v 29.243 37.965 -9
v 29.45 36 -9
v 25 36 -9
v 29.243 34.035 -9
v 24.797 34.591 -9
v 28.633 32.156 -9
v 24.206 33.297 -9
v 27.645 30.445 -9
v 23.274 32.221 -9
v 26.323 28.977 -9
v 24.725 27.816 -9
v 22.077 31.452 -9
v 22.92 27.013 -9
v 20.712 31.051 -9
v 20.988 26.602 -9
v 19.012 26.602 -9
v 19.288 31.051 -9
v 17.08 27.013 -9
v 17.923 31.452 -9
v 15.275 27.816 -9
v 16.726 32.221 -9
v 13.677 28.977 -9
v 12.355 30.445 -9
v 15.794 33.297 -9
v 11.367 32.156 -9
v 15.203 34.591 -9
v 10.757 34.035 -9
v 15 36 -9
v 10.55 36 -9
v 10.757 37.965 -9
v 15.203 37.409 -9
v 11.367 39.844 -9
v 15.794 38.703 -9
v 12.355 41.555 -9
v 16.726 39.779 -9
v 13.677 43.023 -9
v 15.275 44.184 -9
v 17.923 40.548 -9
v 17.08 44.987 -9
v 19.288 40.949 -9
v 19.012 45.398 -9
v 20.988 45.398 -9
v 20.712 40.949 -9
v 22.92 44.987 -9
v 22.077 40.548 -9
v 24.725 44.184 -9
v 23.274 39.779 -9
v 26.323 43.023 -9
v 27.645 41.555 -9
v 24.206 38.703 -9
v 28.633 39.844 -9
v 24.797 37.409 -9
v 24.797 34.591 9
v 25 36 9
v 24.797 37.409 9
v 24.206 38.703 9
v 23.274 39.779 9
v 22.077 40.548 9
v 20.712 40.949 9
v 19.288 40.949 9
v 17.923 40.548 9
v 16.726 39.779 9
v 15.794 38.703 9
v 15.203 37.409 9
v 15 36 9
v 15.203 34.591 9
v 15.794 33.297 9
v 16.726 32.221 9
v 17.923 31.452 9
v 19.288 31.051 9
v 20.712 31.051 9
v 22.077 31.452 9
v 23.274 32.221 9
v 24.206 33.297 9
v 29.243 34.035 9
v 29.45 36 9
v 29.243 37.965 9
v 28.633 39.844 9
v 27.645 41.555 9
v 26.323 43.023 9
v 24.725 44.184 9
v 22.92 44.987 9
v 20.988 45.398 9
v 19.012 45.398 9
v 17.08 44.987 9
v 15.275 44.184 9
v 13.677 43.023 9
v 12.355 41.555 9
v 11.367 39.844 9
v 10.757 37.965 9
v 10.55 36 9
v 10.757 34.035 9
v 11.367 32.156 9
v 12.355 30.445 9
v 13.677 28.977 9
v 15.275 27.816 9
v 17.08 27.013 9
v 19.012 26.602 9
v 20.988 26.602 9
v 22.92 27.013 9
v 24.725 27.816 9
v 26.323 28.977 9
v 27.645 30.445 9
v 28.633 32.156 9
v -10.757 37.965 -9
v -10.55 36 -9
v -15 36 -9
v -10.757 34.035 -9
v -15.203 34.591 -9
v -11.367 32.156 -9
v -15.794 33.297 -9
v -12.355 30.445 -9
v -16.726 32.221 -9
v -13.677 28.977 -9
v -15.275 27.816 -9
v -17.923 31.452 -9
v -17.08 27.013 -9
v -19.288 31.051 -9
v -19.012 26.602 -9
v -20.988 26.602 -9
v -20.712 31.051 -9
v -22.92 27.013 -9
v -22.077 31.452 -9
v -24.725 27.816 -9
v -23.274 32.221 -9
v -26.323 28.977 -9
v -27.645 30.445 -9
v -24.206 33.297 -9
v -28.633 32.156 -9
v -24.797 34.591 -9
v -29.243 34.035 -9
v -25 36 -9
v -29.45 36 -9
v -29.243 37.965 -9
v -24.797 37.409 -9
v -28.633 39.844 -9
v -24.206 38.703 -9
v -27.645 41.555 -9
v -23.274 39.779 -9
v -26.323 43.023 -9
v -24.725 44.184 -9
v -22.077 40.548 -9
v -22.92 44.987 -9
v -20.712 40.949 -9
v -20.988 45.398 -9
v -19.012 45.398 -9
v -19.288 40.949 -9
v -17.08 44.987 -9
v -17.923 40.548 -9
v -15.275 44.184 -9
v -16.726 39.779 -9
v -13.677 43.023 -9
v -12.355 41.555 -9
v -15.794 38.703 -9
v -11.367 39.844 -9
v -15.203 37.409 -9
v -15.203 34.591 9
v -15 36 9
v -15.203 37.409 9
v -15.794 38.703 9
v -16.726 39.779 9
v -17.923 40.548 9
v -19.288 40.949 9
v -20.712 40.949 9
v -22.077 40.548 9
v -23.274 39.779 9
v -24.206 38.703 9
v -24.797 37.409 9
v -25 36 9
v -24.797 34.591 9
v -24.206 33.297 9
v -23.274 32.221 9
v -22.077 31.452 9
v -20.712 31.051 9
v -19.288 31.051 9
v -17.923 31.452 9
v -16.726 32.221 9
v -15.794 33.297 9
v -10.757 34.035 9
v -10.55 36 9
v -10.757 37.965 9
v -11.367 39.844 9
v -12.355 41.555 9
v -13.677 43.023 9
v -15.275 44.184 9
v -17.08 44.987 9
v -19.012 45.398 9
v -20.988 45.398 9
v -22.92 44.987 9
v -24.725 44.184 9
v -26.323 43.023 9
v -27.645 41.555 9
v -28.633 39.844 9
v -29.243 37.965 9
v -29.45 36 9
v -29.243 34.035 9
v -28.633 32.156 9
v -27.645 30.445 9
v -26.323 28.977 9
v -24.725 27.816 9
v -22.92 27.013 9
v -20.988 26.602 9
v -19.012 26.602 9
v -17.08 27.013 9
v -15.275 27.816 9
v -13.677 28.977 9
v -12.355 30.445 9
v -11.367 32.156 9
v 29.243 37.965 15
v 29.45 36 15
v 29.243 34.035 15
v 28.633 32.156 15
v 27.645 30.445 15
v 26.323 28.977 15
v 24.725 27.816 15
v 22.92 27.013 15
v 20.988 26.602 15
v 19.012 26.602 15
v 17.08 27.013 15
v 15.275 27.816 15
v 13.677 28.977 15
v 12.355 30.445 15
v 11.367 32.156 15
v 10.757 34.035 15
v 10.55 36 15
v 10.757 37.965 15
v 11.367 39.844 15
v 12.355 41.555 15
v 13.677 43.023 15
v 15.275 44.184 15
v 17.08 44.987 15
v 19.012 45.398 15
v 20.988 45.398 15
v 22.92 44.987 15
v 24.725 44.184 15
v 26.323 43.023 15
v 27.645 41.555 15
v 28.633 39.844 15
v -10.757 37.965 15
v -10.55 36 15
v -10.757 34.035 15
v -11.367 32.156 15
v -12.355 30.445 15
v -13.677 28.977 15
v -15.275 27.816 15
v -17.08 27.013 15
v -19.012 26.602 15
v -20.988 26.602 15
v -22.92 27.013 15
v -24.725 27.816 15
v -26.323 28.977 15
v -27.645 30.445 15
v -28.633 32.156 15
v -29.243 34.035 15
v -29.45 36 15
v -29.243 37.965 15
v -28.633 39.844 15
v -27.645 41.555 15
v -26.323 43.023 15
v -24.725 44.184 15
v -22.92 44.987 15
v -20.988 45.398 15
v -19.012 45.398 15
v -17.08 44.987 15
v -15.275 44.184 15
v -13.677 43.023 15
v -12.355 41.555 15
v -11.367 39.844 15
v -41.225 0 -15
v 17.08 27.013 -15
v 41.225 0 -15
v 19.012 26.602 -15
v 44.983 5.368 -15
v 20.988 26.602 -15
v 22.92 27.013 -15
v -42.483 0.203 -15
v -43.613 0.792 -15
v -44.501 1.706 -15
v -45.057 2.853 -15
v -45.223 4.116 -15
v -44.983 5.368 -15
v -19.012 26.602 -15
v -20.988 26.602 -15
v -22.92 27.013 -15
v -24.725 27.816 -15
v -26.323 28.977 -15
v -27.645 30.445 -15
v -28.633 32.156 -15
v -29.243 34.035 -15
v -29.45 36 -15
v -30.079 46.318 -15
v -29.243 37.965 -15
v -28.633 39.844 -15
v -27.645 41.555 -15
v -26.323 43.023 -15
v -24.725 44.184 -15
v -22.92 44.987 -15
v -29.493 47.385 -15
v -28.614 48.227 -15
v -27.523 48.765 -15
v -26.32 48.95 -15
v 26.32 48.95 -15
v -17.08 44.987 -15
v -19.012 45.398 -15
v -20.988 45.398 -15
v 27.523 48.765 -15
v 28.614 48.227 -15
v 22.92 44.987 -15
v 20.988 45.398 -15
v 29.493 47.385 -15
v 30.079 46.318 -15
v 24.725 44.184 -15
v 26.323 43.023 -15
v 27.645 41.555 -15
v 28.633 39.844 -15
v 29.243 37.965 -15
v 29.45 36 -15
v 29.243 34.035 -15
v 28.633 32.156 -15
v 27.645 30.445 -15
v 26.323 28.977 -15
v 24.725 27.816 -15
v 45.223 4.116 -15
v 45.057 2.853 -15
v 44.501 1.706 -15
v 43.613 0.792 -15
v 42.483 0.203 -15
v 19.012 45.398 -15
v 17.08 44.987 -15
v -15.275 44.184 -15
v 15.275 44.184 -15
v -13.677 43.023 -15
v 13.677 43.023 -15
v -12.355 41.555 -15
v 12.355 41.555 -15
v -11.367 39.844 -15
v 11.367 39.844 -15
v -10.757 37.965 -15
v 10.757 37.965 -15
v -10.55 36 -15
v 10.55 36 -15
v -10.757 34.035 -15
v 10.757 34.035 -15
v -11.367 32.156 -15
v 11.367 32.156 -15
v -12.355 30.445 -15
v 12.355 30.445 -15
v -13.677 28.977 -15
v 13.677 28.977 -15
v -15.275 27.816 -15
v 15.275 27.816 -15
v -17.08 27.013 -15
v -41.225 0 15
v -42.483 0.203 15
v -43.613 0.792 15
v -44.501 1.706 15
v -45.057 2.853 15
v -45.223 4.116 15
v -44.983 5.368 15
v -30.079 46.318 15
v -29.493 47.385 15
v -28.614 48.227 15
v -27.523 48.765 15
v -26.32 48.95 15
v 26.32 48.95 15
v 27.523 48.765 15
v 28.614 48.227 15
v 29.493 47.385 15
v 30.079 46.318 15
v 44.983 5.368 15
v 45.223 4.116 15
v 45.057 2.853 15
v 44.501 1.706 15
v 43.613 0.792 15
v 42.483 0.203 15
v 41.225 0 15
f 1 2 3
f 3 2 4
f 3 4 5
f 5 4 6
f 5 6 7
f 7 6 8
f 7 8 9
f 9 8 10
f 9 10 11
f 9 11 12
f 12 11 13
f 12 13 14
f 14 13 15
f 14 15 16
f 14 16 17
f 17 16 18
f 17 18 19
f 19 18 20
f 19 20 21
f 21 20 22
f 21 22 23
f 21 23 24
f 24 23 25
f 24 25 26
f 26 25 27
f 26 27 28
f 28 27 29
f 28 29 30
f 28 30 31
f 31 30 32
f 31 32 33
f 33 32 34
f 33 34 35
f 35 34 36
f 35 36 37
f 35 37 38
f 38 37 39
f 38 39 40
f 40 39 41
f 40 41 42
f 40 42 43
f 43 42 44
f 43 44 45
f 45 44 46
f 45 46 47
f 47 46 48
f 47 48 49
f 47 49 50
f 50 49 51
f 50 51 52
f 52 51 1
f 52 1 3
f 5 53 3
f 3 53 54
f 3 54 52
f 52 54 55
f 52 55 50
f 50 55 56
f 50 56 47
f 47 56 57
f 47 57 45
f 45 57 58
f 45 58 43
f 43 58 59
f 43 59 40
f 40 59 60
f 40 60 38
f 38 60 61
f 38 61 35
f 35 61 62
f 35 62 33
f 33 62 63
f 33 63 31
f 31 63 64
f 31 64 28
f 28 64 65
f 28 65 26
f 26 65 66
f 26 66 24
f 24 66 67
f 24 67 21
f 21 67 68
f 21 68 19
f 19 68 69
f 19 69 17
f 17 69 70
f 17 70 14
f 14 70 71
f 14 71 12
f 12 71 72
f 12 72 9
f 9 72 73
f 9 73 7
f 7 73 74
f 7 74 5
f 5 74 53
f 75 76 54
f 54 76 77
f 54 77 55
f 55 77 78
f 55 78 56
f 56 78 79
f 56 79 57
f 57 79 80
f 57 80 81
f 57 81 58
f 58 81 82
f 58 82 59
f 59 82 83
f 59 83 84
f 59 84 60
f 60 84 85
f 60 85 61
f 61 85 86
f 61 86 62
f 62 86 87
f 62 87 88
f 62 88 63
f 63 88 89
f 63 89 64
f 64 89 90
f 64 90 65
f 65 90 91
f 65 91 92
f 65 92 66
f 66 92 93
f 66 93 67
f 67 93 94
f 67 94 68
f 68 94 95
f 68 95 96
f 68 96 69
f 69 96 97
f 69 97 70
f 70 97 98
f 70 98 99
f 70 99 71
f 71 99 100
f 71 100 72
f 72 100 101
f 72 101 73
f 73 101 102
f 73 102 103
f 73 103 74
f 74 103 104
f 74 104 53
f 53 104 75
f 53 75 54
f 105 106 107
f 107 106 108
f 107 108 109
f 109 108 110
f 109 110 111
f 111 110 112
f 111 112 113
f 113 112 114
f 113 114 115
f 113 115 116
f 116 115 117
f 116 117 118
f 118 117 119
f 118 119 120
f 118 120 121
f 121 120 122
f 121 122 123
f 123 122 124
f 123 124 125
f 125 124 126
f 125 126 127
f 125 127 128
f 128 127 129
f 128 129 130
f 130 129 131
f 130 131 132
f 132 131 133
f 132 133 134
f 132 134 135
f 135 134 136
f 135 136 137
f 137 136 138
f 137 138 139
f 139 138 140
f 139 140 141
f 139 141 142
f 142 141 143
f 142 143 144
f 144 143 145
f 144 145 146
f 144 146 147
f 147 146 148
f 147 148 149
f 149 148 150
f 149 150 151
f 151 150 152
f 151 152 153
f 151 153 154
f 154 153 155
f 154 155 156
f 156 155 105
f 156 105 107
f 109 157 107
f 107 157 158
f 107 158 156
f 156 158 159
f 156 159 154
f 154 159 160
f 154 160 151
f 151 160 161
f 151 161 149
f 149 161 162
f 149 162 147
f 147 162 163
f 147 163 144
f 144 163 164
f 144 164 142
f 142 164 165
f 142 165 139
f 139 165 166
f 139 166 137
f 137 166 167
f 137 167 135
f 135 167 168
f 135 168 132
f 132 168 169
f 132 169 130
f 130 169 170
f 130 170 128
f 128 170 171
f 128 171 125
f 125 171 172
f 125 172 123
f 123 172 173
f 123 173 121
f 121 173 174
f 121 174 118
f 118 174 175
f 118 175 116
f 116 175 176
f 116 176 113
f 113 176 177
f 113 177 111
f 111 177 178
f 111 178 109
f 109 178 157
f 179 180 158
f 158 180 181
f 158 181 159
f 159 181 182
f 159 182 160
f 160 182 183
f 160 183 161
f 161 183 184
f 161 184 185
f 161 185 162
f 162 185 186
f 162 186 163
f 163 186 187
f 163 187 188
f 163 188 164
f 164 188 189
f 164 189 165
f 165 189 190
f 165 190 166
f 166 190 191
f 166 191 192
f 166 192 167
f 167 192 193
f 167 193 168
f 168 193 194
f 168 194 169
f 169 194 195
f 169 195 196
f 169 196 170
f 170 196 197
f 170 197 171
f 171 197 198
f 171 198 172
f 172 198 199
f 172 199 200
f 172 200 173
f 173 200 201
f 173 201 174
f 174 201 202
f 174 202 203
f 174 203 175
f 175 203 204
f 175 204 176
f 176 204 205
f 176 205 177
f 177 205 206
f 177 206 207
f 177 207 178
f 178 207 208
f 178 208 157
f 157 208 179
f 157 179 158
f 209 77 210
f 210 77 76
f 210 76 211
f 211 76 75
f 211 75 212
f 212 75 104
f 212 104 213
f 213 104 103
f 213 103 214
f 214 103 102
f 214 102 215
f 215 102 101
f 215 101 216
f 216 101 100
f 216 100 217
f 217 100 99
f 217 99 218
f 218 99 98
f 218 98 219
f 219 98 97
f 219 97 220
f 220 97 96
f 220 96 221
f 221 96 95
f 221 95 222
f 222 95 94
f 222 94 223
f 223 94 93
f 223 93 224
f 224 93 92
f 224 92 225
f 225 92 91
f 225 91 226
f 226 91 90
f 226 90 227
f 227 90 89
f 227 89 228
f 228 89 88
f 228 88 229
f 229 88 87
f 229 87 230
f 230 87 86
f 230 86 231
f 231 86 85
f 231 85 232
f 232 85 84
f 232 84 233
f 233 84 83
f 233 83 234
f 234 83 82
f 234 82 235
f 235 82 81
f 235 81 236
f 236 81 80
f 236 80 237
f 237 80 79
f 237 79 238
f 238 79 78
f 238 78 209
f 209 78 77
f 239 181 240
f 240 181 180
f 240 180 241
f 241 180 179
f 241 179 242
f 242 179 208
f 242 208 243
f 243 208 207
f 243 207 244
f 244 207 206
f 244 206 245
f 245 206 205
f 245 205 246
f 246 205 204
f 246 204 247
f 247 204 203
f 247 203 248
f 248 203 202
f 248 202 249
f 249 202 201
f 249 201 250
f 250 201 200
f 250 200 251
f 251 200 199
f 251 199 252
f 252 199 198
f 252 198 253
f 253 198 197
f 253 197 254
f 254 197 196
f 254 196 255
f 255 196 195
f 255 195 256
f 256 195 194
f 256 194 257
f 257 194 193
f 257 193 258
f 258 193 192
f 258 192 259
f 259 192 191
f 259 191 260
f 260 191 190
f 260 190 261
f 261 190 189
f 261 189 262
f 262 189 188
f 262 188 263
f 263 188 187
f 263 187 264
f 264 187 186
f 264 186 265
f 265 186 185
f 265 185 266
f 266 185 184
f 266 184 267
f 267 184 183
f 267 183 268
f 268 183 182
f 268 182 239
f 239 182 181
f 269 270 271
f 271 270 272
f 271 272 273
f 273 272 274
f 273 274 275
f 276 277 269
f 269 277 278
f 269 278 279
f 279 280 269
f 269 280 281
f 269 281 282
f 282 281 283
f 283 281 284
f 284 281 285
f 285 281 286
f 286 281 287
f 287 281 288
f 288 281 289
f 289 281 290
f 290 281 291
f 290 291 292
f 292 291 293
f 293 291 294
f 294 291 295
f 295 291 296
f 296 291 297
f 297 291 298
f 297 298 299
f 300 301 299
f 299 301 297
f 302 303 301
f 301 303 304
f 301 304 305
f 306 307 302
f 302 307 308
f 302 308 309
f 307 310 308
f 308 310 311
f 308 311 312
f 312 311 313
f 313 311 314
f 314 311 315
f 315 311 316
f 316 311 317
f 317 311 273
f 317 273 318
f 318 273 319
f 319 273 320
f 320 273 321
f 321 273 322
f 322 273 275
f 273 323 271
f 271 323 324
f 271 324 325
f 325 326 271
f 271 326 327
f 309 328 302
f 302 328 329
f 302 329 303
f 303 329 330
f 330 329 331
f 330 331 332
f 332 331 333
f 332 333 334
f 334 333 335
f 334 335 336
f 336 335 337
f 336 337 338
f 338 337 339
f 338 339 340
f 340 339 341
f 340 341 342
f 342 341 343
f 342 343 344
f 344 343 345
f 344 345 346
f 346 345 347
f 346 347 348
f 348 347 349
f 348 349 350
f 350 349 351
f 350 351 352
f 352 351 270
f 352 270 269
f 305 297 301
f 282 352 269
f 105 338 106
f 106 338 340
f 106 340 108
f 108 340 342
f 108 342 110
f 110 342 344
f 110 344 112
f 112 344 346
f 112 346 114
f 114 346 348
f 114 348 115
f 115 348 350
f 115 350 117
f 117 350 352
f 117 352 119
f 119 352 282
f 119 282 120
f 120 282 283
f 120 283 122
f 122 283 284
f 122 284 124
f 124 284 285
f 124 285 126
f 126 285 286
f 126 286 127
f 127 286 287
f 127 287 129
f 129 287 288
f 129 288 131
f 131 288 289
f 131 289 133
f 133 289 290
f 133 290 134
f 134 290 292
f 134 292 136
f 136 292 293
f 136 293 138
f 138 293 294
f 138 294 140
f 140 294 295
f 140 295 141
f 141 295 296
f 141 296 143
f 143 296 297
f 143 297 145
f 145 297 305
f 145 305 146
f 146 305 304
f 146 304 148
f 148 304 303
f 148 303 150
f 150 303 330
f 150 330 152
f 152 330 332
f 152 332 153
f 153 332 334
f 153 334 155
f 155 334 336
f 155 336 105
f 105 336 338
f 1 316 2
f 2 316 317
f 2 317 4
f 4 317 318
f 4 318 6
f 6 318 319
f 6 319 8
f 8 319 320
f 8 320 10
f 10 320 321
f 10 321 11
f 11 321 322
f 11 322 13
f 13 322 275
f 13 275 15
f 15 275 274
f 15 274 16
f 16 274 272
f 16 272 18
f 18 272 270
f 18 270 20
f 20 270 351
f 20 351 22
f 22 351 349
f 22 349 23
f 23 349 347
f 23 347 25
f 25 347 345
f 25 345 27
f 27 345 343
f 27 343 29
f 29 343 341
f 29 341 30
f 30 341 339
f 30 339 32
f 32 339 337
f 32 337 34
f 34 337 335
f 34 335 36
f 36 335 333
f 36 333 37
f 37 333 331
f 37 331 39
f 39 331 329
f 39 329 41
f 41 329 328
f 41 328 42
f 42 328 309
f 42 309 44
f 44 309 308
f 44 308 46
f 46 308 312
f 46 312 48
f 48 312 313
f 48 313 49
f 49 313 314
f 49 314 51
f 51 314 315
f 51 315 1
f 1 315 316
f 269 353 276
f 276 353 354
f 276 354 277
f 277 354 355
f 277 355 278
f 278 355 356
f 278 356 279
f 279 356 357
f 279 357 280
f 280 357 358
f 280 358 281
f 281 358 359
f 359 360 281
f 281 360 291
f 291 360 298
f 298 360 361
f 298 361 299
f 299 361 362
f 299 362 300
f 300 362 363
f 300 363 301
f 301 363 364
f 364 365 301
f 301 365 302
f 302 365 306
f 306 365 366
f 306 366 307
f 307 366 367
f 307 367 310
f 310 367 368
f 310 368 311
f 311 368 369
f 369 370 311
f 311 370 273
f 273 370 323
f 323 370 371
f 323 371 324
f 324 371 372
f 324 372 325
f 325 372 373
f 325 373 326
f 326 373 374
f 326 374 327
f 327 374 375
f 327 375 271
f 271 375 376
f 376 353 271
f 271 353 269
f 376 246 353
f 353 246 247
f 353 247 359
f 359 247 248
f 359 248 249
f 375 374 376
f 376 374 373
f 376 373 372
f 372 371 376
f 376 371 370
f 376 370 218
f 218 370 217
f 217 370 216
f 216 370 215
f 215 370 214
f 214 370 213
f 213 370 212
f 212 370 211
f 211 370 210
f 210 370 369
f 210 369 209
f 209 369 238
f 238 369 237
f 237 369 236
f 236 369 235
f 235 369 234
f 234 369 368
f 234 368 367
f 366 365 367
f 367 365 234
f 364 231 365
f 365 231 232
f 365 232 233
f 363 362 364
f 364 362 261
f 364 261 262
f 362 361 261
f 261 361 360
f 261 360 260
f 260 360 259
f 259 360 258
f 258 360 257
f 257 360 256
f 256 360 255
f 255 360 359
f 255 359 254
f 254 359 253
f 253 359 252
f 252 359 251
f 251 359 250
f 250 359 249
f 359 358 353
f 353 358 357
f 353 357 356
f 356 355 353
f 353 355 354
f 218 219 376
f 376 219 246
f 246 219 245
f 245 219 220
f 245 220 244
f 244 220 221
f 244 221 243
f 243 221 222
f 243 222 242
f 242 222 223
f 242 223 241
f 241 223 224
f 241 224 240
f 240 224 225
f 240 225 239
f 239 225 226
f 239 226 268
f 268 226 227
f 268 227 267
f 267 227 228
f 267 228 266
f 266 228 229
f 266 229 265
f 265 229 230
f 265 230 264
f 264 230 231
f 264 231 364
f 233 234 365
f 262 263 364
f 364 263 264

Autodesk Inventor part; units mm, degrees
ref_plane "YZ Plane" through (0, 0, 0) normal (1, 0, 0) x (0, 1, 0)
ref_plane "XZ Plane" through (0, 0, 0) normal (0, 1, 0) x (-1, 0, 0)
ref_plane "XY Plane" through (0, 0, 0) normal (0, 0, 1) x (1, 0, 0)
sketch "Sketch1" plane through (0, 0, 0) normal (0, 0, 1) x (1, 0, 0)
  line L0 (-41.2246, 0) -> (41.2246, 0)
  line L1 (-26.3201, 48.95) -> (26.3201, 48.95)
  circle A0 centre (-20, 36) radius 9.45
  line L2 (0, 48.95) -> (0, 0) construction
  circle A1 centre (-20, 36) radius 5
  circle A2 centre (20, 36) radius 9.45
  circle A3 centre (20, 36) radius 5
  arc A4 (-44.9834, 5.3681) -> (-41.2246, 0) centre (-41.2246, 4) ccw
  arc A5 (-26.3201, 48.95) -> (-30.0788, 46.3181) centre (-26.3201, 44.95) ccw
  line L3 (-44.9834, 5.3681) -> (-30.0788, 46.3181)
  arc A6 (41.2246, 0) -> (44.9834, 5.3681) centre (41.2246, 4) ccw
  arc A7 (30.0788, 46.3181) -> (26.3201, 48.95) centre (26.3201, 44.95) ccw
  line L4 (44.9834, 5.3681) -> (30.0788, 46.3181)
  dimension "d1" = 18.9
  dimension "d3" = 3.5
  dimension "d4" = 36
  dimension "d7" = 10
  dimension "d8" = 40
  dimension "d10" = 4
  dimension "d11" = 13
  dimension "d12" = 70
extrude "Extrusion1" add sketch "Sketch1" along normal mid plane 30 contours A4 L3 A5 L1 A7 L4 A6 L0
extrude "Extrusion2" add sketch "Sketch1" along normal mid plane 18 contours A0 | A2
properties part number "EngineMount"
